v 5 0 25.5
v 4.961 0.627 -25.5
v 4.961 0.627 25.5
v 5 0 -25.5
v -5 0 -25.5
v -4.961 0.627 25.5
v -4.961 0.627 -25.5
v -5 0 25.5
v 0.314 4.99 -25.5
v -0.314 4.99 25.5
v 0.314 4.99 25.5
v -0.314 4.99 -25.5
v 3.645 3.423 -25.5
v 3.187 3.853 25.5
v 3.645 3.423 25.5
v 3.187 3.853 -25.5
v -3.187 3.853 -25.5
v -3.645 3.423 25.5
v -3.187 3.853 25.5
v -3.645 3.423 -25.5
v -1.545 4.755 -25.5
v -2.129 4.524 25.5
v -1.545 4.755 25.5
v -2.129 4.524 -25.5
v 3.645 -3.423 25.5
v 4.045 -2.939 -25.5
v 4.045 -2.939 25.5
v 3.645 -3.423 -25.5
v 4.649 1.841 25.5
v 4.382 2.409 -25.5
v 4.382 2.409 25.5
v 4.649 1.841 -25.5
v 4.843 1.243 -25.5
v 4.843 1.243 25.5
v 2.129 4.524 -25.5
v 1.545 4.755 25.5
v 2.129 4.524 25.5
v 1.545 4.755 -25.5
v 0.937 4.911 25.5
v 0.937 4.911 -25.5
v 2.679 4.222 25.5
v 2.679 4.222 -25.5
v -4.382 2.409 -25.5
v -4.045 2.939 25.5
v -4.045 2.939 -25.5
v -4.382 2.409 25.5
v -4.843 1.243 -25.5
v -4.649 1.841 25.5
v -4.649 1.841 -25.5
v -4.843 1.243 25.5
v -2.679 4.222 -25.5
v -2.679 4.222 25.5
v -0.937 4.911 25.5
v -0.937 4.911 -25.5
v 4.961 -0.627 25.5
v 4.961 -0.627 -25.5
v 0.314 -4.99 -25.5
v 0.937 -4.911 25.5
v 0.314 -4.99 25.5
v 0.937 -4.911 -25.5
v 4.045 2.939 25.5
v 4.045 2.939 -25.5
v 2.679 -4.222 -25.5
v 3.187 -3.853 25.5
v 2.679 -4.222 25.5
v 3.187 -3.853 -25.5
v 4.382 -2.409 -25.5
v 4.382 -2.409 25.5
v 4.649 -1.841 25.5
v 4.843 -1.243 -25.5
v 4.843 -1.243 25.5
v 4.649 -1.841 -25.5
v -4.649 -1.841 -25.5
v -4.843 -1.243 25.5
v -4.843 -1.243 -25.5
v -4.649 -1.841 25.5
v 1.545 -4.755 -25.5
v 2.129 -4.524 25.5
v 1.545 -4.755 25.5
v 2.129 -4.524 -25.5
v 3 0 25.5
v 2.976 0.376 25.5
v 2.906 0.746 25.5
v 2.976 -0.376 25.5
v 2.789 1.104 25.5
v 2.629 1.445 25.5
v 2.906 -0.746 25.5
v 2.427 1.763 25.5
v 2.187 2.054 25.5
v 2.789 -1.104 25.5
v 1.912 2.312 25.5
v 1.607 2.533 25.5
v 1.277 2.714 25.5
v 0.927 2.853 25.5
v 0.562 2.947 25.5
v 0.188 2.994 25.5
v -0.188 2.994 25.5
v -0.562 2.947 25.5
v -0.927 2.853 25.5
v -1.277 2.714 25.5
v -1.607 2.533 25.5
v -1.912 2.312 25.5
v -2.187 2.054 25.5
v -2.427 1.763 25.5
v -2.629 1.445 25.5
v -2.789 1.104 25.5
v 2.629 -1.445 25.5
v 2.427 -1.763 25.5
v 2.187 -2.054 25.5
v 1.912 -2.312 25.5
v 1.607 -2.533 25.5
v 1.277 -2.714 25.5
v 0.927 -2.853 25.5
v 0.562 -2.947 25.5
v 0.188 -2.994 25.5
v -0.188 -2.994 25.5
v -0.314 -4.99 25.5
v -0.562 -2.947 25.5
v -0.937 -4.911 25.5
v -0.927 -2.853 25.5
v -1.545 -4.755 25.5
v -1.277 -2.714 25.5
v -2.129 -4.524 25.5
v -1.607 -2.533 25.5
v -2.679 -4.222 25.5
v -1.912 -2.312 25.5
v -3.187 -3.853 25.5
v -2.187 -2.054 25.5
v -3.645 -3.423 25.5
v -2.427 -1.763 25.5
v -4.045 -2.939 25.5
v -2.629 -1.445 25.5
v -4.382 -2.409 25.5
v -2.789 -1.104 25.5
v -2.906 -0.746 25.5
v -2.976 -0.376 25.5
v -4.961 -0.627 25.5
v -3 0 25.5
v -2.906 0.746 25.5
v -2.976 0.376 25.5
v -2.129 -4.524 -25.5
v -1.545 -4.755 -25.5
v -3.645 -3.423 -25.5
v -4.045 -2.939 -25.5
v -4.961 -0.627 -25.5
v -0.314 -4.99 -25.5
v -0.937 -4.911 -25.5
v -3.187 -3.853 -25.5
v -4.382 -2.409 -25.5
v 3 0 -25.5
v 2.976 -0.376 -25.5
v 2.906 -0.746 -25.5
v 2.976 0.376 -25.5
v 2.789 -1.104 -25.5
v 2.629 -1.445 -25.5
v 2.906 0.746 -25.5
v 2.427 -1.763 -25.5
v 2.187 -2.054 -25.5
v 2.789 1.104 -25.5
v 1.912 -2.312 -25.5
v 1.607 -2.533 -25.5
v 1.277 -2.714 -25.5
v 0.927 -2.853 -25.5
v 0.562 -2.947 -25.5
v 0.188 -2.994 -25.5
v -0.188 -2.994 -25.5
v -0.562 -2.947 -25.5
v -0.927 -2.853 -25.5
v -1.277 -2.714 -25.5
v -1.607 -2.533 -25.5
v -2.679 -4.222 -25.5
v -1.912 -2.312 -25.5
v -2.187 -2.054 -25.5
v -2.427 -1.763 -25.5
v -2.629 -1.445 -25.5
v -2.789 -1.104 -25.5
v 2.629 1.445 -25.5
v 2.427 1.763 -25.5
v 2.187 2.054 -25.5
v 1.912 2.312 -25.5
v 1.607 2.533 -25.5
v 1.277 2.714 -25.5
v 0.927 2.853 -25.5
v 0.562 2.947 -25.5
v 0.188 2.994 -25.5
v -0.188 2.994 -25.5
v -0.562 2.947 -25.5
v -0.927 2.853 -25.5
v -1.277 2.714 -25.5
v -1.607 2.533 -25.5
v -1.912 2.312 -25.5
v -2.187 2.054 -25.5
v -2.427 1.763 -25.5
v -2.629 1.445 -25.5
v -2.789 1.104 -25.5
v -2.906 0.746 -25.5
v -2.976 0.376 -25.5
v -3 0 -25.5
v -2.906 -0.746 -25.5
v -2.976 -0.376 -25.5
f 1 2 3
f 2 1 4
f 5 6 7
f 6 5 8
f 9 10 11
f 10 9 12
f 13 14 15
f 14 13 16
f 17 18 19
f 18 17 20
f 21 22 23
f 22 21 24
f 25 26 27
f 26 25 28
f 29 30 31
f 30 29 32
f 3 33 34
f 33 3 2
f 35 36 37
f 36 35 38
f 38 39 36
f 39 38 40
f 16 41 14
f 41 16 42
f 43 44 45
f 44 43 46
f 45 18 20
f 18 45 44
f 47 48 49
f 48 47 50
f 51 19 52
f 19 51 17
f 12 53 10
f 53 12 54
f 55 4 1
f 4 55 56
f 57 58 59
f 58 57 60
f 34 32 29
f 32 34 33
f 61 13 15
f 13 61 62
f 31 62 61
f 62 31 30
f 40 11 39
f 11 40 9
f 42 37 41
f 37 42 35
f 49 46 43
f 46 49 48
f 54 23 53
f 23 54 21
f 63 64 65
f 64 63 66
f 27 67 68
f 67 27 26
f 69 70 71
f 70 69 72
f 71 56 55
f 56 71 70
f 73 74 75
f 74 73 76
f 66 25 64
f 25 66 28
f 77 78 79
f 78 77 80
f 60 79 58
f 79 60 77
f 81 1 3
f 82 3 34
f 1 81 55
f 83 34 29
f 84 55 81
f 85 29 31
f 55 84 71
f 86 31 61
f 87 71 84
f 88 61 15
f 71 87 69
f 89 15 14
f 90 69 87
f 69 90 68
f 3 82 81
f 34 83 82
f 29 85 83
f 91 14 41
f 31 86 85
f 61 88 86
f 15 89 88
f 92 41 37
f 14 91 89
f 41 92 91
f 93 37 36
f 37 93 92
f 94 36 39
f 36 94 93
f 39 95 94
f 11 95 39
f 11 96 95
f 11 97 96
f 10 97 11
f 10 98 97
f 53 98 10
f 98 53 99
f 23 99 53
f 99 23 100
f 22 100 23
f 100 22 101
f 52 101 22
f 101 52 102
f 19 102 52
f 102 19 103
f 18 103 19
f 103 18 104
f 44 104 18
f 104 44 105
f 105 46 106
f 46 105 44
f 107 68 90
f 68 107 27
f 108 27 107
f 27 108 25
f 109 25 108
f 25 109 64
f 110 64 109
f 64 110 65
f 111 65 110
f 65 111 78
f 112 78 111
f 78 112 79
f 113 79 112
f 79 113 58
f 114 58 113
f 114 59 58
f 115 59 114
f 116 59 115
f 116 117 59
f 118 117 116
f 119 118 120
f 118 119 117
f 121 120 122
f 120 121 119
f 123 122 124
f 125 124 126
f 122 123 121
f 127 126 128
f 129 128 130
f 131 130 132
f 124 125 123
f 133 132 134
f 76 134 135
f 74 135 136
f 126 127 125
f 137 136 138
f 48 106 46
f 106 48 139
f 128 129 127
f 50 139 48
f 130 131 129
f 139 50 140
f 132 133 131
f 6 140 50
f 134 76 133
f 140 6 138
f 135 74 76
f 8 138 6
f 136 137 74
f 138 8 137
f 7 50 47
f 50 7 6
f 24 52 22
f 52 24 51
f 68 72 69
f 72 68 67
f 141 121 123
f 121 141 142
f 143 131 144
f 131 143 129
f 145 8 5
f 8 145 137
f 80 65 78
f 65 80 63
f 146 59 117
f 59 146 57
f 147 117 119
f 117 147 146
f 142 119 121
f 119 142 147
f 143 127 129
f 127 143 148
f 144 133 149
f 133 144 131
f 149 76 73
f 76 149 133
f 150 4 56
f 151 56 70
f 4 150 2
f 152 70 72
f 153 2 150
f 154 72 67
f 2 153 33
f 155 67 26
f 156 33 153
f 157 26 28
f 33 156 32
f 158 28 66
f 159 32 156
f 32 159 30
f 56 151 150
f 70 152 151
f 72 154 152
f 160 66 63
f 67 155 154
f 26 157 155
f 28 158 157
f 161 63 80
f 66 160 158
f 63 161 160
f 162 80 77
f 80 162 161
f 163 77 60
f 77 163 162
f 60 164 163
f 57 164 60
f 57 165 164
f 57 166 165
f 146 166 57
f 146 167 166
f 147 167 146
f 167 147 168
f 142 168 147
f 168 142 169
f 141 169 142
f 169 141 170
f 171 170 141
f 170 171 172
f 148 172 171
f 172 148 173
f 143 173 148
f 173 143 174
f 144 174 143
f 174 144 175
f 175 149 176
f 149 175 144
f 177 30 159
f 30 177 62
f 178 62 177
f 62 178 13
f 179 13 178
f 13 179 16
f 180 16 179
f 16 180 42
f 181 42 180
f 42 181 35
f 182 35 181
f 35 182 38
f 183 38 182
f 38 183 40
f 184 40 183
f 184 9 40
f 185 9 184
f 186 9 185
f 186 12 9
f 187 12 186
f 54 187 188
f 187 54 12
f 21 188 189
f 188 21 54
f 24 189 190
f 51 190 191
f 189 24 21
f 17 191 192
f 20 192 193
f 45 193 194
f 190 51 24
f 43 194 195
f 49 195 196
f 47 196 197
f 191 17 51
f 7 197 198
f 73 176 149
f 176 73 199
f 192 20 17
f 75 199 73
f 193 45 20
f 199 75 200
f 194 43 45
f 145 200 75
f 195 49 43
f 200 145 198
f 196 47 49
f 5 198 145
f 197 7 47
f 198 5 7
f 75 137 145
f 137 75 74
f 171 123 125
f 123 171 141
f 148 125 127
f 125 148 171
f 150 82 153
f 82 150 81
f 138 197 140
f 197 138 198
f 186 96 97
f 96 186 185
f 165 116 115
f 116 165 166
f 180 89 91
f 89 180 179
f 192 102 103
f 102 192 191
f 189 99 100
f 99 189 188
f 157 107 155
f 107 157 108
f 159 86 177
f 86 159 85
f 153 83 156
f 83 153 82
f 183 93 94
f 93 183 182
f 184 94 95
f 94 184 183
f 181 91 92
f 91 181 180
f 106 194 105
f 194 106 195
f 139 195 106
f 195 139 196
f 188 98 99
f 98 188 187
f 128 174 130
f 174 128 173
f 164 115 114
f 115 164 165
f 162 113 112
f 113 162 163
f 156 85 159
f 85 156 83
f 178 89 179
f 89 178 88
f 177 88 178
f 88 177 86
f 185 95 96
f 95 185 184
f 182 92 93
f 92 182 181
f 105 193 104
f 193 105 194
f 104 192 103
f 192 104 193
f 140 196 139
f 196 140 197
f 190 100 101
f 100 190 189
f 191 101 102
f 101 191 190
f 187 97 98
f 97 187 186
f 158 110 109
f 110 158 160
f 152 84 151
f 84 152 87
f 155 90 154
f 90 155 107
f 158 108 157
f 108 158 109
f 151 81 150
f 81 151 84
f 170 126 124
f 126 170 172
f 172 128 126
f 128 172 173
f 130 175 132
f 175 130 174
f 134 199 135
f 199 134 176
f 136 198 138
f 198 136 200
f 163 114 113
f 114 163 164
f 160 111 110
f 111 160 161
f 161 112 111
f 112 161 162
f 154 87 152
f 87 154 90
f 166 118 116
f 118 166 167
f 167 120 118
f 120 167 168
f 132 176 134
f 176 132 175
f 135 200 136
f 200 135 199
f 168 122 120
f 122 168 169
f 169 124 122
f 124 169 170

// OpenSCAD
$fn = 50;


difference() {
	union() {
		translate(v = [0, 0, -25.5000000000]) {
			cylinder(h = 51, r = 5.0000000000);
		}
	}
	union() {
		translate(v = [0, 0, -100.0000000000]) {
			cylinder(h = 200, r = 3.0000000000);
		}
	}
}
